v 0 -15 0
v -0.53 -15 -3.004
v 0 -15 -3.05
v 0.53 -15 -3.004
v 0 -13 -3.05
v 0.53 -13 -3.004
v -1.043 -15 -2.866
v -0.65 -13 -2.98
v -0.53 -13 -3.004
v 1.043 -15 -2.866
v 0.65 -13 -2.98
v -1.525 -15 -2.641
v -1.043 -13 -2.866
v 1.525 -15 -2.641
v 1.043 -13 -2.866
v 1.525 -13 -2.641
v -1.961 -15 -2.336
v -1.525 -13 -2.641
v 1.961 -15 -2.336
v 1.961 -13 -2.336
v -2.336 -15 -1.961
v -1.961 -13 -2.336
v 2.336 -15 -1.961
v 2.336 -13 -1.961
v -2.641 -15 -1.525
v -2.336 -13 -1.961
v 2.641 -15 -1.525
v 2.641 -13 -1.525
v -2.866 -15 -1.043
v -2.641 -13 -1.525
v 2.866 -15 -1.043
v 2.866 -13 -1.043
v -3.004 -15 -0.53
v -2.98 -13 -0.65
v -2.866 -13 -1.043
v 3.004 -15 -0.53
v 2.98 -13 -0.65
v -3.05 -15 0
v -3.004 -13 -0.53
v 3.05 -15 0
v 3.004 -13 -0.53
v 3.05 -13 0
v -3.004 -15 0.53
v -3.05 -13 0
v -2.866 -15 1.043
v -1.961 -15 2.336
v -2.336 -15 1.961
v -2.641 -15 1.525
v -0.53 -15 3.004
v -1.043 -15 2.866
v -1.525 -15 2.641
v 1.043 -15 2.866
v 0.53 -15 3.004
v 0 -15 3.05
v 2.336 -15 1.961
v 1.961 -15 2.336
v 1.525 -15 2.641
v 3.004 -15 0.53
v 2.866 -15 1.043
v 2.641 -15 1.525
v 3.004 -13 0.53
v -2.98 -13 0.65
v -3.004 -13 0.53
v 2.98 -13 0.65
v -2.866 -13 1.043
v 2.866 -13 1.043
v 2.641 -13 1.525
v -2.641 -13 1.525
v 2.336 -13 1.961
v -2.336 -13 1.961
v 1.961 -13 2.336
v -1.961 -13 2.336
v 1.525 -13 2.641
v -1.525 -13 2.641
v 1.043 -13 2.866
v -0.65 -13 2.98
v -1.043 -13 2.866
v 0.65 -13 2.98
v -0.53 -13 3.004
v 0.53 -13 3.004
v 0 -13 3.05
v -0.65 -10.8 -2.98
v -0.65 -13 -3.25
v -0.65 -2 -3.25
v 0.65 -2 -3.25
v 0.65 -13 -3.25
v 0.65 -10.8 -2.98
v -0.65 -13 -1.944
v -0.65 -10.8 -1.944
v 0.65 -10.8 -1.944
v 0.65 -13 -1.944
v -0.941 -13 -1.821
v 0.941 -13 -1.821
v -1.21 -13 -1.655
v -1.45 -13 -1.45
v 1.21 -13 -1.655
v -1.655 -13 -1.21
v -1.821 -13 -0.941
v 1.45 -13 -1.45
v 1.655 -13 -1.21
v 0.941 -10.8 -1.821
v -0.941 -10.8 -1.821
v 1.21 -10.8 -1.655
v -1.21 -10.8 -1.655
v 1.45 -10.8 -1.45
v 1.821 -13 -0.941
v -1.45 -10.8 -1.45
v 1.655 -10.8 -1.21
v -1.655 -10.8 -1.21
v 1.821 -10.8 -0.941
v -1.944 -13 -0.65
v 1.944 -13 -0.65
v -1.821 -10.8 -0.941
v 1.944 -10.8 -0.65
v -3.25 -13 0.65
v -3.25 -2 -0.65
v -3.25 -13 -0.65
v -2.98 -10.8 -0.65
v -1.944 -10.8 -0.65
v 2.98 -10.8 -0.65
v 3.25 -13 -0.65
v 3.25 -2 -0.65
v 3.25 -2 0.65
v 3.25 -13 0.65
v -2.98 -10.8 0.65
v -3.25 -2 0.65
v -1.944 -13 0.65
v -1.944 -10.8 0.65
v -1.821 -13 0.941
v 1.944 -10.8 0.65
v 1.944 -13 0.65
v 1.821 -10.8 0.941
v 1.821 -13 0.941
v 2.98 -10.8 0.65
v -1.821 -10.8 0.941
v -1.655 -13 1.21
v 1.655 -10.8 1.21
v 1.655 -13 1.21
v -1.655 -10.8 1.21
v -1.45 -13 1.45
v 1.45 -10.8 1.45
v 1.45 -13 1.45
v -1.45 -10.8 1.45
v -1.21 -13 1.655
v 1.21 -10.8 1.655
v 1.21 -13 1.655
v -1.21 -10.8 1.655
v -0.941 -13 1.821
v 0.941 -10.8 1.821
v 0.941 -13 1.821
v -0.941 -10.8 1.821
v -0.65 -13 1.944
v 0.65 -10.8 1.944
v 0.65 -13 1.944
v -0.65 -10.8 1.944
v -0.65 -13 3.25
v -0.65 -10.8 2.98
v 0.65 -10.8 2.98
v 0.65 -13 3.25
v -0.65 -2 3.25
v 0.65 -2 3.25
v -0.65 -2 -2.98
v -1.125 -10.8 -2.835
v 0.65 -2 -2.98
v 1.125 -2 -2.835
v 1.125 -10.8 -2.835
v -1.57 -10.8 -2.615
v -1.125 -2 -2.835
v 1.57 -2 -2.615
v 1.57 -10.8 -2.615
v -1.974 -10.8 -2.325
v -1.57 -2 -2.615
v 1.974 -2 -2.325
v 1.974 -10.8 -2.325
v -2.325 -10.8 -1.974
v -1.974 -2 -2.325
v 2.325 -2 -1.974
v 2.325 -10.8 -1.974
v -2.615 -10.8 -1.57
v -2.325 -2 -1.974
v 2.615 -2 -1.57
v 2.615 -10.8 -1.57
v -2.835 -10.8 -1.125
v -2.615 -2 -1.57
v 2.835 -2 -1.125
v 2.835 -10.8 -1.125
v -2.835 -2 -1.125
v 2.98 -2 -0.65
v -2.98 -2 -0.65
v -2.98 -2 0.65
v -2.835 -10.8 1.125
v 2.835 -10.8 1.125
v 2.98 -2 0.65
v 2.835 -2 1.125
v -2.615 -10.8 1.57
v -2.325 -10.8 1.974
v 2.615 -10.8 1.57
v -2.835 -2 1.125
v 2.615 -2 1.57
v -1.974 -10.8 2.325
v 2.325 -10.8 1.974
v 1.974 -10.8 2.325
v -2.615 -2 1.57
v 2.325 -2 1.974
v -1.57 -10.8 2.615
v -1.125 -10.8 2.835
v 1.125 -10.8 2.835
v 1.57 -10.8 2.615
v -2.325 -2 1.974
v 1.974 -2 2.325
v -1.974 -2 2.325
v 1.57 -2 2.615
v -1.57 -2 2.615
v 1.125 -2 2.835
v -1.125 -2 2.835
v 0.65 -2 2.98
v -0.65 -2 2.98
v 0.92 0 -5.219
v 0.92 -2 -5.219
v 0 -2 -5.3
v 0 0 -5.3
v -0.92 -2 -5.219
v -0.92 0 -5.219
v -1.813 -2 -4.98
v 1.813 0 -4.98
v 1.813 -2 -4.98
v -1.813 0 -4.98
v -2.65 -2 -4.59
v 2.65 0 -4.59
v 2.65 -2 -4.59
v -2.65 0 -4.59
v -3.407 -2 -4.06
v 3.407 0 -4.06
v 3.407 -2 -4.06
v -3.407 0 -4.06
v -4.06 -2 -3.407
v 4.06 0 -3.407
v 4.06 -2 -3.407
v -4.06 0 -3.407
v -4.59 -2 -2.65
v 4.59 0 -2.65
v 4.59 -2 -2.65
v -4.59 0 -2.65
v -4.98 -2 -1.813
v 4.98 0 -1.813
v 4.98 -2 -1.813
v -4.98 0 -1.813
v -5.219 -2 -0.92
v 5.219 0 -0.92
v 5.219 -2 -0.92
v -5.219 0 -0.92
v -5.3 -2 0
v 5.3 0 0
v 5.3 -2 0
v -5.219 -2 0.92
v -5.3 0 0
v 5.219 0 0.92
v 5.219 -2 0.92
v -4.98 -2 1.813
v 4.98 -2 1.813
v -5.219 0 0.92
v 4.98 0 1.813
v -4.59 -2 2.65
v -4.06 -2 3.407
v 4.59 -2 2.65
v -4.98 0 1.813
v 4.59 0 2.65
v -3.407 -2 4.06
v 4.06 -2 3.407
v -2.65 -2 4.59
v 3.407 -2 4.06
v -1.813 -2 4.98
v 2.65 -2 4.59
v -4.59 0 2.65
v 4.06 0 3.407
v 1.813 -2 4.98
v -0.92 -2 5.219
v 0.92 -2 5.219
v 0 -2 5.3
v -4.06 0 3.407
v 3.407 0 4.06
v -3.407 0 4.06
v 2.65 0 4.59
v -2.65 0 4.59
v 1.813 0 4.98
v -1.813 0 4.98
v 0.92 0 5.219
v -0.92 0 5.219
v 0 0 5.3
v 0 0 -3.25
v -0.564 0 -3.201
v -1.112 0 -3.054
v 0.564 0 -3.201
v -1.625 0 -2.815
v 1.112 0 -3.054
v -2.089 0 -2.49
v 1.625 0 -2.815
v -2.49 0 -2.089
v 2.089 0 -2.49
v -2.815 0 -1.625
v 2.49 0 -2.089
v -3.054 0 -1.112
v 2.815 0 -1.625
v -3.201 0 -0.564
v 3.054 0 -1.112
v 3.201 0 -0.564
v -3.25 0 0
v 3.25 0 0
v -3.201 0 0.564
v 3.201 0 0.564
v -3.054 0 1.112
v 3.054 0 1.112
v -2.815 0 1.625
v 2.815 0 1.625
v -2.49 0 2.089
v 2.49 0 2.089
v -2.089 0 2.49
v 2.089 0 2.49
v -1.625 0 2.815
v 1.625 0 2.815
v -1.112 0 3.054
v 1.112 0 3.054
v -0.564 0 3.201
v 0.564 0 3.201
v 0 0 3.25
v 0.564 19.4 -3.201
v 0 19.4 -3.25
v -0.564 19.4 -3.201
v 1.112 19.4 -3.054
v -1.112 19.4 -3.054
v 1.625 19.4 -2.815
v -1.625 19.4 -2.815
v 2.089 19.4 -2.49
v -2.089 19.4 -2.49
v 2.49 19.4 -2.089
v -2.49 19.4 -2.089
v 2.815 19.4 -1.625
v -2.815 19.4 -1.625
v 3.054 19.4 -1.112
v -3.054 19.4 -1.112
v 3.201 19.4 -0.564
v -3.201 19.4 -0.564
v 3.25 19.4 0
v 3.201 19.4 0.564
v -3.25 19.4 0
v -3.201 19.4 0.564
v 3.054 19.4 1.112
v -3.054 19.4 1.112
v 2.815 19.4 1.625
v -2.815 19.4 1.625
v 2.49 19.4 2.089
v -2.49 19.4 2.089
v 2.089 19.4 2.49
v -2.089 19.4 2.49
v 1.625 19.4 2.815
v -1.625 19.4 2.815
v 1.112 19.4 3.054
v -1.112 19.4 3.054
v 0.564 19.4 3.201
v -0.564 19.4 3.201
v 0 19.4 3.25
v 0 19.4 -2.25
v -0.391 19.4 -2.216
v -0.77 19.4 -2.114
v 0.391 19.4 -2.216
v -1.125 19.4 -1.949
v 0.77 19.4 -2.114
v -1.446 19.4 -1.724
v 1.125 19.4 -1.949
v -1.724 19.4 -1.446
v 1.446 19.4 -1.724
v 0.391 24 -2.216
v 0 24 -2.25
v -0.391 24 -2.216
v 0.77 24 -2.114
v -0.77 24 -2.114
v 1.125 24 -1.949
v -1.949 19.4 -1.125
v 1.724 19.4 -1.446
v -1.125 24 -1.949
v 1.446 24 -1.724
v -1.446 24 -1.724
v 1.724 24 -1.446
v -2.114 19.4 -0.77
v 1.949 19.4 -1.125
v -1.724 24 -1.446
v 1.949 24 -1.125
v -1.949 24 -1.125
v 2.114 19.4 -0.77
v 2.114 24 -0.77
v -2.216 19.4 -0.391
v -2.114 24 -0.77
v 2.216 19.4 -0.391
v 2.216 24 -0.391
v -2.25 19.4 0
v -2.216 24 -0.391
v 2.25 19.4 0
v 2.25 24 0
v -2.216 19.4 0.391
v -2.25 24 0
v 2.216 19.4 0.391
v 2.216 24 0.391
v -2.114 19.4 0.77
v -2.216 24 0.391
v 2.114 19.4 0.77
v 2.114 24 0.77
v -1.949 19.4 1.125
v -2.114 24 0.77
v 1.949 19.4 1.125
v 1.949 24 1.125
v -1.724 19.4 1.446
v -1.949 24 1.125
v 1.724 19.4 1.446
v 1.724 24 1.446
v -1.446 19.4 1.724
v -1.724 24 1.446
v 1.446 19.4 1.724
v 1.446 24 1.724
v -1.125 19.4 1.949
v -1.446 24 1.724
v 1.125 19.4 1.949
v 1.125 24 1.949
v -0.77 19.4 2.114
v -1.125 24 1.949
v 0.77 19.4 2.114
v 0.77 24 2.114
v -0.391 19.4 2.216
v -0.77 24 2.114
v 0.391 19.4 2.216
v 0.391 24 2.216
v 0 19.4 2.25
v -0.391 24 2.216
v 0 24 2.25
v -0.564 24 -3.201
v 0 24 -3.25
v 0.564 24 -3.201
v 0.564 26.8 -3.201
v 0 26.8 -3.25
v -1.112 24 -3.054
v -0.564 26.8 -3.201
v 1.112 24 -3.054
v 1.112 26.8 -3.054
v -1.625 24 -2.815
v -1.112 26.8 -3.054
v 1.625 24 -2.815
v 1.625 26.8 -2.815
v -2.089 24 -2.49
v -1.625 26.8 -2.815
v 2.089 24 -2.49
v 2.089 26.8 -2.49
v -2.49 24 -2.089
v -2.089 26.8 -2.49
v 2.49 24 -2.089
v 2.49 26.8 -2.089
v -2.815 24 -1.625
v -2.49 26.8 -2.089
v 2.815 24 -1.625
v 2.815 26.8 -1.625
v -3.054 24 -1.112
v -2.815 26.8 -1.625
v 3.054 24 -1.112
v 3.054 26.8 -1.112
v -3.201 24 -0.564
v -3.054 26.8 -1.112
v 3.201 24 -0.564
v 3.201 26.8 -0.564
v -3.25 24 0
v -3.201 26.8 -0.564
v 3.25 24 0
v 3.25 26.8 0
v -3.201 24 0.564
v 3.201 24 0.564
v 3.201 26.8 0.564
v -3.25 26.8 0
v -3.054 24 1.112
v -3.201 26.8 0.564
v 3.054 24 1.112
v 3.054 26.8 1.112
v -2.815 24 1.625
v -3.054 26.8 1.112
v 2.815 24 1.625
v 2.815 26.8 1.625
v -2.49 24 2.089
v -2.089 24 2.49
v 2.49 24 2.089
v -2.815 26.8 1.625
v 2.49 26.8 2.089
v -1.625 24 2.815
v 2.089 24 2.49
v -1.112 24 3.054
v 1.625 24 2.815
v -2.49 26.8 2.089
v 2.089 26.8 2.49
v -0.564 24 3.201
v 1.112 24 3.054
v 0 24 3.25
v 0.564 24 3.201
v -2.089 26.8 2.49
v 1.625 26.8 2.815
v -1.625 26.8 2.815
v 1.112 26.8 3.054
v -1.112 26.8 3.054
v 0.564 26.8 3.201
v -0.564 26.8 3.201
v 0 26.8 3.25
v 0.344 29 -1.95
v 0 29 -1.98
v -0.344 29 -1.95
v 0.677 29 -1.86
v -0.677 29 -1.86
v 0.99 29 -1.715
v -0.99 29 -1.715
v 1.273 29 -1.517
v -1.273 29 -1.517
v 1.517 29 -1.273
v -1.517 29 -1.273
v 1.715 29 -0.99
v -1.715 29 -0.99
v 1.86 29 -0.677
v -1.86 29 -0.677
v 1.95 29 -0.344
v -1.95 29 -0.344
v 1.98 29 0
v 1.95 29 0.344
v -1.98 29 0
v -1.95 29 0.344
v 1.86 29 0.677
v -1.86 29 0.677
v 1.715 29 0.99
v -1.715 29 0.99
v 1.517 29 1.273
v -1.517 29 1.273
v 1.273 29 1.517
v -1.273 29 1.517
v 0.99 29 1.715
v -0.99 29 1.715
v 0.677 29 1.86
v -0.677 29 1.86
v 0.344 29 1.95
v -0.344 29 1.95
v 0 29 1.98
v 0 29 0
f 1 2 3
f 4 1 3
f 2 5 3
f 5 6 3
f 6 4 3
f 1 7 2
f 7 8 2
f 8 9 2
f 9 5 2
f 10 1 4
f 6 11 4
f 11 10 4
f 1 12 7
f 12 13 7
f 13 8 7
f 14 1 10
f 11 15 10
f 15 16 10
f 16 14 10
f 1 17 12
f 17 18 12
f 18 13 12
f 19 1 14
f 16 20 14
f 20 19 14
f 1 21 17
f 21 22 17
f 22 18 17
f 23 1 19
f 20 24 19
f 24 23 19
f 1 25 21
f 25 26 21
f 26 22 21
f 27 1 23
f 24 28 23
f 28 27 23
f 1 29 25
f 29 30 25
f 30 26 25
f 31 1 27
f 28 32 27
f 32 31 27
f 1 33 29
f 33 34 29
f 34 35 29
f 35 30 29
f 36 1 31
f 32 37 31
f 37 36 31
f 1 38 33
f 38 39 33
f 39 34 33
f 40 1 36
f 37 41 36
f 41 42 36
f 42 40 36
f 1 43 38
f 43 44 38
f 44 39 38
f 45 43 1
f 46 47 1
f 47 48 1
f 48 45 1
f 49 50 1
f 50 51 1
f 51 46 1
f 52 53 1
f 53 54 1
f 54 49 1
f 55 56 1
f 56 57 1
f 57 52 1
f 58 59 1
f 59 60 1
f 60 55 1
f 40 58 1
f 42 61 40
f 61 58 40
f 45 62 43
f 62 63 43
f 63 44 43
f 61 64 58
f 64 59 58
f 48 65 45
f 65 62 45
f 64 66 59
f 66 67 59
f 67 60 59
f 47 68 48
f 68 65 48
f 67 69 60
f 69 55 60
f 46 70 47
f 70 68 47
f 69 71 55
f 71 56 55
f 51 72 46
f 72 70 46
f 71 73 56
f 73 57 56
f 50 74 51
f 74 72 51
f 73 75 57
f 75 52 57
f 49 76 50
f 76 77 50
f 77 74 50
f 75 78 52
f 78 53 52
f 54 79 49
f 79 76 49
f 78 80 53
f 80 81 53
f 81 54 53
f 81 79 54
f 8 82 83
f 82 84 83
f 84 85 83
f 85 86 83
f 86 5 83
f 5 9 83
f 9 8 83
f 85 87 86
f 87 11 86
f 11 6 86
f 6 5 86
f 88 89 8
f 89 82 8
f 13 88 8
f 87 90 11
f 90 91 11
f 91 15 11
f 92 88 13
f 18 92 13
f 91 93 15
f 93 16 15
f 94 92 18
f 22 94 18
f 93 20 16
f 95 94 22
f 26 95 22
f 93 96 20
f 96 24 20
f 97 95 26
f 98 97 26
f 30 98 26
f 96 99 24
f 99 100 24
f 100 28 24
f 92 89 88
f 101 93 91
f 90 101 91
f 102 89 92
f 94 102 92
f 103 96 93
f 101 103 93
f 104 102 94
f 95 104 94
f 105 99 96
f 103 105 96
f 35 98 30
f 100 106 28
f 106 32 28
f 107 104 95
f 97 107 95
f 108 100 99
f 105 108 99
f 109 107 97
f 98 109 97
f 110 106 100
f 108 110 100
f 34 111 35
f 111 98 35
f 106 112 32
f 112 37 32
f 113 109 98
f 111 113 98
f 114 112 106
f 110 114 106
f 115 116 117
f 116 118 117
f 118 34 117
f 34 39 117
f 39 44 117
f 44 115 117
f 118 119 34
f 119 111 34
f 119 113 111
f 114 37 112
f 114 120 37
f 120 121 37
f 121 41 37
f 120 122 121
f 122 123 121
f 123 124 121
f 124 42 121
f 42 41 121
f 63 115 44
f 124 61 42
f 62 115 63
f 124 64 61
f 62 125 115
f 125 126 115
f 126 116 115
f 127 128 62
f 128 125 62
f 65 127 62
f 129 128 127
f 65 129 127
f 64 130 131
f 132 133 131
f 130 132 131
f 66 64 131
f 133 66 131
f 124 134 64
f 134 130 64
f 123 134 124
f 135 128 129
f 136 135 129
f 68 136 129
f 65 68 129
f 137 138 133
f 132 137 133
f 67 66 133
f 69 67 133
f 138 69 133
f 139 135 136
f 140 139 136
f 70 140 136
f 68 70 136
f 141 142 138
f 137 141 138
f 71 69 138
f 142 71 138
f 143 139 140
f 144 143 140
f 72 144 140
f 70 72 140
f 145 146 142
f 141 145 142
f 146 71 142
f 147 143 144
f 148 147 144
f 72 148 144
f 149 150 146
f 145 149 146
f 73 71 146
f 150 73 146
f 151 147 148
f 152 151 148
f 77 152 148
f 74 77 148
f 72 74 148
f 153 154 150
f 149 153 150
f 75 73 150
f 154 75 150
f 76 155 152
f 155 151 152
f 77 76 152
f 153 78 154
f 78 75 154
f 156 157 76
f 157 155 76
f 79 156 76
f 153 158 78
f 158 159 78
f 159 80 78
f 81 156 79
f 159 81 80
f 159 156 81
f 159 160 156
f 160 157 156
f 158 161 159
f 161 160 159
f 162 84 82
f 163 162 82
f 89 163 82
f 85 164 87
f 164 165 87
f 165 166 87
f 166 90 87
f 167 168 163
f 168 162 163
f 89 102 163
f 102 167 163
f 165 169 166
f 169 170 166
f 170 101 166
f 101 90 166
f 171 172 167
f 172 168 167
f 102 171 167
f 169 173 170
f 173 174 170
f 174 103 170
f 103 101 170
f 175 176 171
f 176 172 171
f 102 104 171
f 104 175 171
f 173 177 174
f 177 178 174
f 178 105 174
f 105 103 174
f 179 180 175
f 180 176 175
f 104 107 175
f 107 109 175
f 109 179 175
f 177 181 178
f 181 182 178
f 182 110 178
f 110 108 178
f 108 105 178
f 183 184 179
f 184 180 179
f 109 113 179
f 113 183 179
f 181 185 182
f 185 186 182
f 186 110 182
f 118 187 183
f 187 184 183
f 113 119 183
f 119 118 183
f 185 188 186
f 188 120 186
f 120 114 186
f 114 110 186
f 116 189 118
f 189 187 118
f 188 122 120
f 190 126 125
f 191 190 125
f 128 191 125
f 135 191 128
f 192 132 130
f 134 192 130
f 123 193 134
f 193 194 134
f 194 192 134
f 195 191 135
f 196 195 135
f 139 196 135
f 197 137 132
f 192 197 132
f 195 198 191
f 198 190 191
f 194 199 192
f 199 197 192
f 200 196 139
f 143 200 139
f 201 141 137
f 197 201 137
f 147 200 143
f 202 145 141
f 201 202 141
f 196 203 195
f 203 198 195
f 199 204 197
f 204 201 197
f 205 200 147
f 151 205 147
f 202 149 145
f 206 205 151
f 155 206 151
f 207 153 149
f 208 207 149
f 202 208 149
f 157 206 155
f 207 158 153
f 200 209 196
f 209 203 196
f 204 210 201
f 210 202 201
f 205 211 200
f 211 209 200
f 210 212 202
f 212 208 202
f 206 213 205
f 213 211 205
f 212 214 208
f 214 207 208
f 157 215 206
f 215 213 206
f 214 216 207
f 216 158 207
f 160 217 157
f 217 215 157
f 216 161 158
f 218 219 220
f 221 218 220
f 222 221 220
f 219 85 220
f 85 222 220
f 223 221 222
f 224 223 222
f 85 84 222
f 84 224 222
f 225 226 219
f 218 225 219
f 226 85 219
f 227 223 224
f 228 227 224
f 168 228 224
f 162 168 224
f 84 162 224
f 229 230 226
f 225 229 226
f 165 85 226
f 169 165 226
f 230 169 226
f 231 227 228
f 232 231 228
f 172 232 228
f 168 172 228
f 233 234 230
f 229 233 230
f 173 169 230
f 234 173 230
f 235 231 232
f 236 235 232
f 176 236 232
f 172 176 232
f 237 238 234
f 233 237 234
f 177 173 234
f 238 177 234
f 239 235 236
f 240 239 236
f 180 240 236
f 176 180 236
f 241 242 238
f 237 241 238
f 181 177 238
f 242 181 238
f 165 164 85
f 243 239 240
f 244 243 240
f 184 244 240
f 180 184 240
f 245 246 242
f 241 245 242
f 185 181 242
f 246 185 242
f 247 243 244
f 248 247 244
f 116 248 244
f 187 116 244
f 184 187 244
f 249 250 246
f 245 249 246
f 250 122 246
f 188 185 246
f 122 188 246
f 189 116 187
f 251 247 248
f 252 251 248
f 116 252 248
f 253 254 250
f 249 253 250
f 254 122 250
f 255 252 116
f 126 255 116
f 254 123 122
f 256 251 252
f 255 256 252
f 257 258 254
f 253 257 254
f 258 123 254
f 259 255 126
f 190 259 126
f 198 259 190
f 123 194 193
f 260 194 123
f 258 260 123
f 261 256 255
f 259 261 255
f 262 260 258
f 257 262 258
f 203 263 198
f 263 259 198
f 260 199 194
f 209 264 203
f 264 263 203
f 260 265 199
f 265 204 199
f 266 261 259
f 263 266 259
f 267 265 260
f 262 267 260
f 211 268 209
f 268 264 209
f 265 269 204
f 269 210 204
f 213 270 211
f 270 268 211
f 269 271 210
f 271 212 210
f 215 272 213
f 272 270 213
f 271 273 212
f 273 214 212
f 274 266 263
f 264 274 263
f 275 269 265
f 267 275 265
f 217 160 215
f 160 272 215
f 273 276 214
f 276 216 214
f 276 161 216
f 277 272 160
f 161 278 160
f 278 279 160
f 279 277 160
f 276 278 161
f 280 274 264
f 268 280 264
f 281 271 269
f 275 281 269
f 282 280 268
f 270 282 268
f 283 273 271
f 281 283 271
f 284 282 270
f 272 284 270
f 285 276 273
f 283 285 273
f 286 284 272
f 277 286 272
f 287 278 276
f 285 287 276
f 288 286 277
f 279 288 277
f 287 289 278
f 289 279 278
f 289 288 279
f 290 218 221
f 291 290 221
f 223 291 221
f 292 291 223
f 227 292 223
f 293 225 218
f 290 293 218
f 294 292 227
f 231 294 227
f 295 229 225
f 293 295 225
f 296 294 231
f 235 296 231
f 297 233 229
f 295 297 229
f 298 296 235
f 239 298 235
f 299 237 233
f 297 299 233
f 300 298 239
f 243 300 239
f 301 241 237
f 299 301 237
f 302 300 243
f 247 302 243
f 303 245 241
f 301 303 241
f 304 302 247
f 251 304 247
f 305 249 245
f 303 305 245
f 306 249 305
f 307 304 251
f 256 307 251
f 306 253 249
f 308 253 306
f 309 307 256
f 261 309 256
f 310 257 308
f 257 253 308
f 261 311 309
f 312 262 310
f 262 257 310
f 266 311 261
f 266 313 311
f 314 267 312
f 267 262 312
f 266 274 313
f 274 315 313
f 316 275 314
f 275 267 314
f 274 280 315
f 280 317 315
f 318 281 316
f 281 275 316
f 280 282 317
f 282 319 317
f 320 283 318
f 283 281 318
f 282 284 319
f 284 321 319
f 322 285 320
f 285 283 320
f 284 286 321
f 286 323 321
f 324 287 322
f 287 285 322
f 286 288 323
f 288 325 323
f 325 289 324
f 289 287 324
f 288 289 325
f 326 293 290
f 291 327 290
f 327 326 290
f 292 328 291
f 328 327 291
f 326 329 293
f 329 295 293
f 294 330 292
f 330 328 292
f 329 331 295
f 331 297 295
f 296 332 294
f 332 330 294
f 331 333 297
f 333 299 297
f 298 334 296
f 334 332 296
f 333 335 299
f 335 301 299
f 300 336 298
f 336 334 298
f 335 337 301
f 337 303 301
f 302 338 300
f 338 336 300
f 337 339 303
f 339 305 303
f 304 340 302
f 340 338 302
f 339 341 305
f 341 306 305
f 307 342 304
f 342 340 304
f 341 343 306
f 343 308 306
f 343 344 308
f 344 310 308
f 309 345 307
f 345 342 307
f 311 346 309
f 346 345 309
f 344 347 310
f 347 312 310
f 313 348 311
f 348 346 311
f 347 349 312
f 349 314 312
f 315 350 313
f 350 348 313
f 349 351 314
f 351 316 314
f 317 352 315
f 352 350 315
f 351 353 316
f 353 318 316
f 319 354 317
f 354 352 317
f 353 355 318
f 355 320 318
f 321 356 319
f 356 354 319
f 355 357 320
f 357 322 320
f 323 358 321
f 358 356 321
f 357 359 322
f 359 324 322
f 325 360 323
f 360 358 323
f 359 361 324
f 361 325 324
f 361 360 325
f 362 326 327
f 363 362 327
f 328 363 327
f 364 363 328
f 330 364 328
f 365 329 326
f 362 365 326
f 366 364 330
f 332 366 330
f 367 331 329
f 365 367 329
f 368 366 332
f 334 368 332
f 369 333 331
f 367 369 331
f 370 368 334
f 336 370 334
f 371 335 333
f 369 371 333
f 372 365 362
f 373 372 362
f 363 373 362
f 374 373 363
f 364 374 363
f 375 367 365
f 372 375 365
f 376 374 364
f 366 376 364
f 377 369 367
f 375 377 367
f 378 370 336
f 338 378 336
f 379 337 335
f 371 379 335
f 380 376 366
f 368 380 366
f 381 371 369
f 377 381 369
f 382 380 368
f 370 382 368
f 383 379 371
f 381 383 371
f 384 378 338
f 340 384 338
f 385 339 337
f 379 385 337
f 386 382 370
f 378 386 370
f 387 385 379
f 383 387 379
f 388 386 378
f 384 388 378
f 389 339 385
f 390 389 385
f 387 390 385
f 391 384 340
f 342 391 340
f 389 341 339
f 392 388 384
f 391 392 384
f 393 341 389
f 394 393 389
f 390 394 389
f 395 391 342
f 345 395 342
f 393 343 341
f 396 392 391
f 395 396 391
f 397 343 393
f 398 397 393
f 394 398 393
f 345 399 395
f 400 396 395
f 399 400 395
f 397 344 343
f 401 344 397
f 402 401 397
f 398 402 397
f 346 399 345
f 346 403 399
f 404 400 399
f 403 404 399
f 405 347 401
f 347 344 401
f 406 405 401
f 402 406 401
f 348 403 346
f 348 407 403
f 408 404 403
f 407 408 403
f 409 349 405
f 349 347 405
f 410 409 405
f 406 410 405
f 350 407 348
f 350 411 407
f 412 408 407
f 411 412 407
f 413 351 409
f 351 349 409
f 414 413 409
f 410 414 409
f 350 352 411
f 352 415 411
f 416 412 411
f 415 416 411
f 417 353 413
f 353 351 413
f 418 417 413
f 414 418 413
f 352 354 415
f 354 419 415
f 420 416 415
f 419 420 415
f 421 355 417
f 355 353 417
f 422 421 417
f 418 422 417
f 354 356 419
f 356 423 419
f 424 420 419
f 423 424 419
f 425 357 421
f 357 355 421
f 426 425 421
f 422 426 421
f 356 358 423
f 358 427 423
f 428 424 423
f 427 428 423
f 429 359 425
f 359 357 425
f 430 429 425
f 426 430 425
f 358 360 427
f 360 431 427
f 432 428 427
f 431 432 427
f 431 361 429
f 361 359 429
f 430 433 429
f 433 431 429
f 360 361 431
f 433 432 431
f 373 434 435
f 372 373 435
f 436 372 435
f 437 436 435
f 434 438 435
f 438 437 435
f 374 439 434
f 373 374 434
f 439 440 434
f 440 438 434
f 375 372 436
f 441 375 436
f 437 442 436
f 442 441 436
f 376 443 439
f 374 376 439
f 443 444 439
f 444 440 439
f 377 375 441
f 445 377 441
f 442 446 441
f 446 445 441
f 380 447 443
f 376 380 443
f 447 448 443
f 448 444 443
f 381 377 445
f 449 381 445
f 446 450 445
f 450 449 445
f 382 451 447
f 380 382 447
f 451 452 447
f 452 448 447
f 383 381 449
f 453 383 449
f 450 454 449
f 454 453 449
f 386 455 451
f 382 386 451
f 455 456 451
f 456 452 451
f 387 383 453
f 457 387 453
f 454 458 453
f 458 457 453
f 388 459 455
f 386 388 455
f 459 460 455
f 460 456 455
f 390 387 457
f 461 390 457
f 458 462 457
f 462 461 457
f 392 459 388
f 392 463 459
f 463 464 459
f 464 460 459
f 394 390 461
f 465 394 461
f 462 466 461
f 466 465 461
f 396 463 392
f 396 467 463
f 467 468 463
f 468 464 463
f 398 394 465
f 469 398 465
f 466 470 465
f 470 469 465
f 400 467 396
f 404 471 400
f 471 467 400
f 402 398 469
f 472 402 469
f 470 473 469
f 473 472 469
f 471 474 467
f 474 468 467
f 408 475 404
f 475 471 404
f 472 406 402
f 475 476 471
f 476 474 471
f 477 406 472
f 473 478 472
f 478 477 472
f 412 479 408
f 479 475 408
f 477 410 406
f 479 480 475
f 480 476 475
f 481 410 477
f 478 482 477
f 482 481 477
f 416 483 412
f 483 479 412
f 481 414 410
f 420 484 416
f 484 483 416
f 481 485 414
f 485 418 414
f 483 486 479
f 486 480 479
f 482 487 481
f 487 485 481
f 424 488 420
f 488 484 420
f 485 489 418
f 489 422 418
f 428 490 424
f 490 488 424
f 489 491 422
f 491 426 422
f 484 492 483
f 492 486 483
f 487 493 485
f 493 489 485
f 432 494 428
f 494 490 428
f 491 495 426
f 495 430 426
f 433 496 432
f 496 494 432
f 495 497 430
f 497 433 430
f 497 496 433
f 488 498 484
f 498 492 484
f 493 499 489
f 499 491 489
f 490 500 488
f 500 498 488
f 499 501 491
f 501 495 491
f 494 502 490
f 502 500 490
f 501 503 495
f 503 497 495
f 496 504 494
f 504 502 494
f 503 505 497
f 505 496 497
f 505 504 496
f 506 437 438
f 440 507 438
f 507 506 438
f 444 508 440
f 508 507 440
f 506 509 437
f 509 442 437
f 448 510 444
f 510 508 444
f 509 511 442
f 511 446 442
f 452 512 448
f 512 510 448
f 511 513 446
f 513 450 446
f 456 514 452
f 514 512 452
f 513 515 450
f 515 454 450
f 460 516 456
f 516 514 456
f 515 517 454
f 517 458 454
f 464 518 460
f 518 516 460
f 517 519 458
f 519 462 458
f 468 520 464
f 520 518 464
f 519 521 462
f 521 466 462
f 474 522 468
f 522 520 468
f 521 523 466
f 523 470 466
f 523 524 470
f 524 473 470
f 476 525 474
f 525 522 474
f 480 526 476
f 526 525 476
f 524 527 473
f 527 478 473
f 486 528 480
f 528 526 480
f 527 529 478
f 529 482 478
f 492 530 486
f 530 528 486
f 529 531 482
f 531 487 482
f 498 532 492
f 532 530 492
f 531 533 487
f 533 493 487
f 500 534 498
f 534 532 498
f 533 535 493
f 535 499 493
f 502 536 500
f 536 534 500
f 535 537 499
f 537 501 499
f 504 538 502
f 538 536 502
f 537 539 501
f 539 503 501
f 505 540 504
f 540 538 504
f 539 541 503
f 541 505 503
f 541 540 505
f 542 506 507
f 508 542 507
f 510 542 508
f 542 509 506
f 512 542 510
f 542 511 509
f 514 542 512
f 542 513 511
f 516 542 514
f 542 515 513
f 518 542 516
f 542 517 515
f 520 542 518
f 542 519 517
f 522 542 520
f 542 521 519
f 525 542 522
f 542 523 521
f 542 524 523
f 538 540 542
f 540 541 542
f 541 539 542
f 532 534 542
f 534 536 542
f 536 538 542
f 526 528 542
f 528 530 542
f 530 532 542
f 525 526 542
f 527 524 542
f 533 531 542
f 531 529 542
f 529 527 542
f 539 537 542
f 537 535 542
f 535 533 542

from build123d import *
from build123d.topology import SkipClean

# Parameters (mm, degrees)
SKETCH_1_R          = 3.25
EXTRUDE_1_DEPTH     = 29
CUT_EXTRUDE_START   = -5
SKETCH_2_OUTSIDE_W  = 14.584
SKETCH_2_OUTSIDE_H  = 14.584
SKETCH_2_OUTSIDE_R  = 2.25
CUT_EXTRUDE_1_DEPTH = 4.6
CHAMFER_1_SIZE      = 2.2
CHAMFER_1_SIZE2     = 1.270170592
SKETCH_3_R          = 5.3
EXTRUDE_2_DEPTH     = 2
EXTRUDE_3_DEPTH     = 13
CUT_EXTRUDE_START_2 = -4.2
CUT_EXTRUDE_2_DEPTH = 2.2
SKETCH_6_OUTSIDE_W  = 21.896
SKETCH_6_OUTSIDE_H  = 21.896
SKETCH_6_OUTSIDE_R  = 3.05
CUT_EXTRUDE_3_DEPTH = 2


with BuildPart() as part:
    # Эскиз1 → Бобышка-Вытянуть1 (new body)
    with BuildSketch(Plane(origin=(0, 0, 0), x_dir=(1, 0, 0), z_dir=(0, 1, 0))):
        with Locations(Location((0, 0, 0), (0, 0, 90))):
            Circle(SKETCH_1_R)
    extrude(amount=EXTRUDE_1_DEPTH)

    # Эскиз2 outside → Вырез-Вытянуть1 (cut)
    with BuildSketch(Plane(origin=(0, 29, 0), x_dir=(1, 0, 0), z_dir=(0, 1, 0)).offset(CUT_EXTRUDE_START)):
        Rectangle(SKETCH_2_OUTSIDE_W, SKETCH_2_OUTSIDE_H)
        with Locations(Location((0, 0, 0), (0, 0, 270))):
            Circle(SKETCH_2_OUTSIDE_R, mode=Mode.SUBTRACT)
    extrude(amount=-CUT_EXTRUDE_1_DEPTH, mode=Mode.SUBTRACT)

    # Фаска1
    chamfer_1_edges = [part.edges().sort_by_distance(p)[0] for p in [
        (0, 29, 3.25),
    ]]
    chamfer_1_side = [part.faces().sort_by_distance(p)[0] for p in [
        (0, 26.5, 3.25),
    ]]
    chamfer(chamfer_1_edges, length=CHAMFER_1_SIZE, length2=CHAMFER_1_SIZE2, reference=chamfer_1_side[0])

    # Эскиз3 → Бобышка-Вытянуть2 (add)
    with BuildSketch(Plane.XZ):
        with Locations(Location((0, 0, 0), (0, 0, 270))):
            Circle(SKETCH_3_R)
    extrude(amount=EXTRUDE_2_DEPTH)

    # Эскиз4 → Бобышка-Вытянуть3 (add)
    with BuildSketch(Plane.XZ.offset(2)):
        with BuildLine():
            Line((-0.65, 3.25), (0.65, 3.25))
            Line((0.65, 3.25), (0.65, 2.979932885))
            ThreePointArc((0.65, 2.979932885), (2.156675683, 2.156675683), (2.979932885, 0.65))
            Line((2.979932885, 0.65), (3.25, 0.65))
            Line((3.25, 0.65), (3.25, -0.65))
            Line((3.25, -0.65), (2.979932885, -0.65))
            ThreePointArc((2.979932885, -0.65), (2.156675683, -2.156675683), (0.65, -2.979932885))
            Line((0.65, -2.979932885), (0.65, -3.25))
            Line((0.65, -3.25), (-0.65, -3.25))
            Line((-0.65, -3.25), (-0.65, -2.979932885))
            ThreePointArc((-0.65, -2.979932885), (-2.156675683, -2.156675683), (-2.979932885, -0.65))
            Line((-2.979932885, -0.65), (-3.25, -0.65))
            Line((-3.25, -0.65), (-3.25, 0.65))
            Line((-3.25, 0.65), (-2.979932885, 0.65))
            ThreePointArc((-2.979932885, 0.65), (-2.156675683, 2.156675683), (-0.65, 2.979932885))
            Line((-0.65, 2.979932885), (-0.65, 3.25))
        make_face()
    extrude(amount=EXTRUDE_3_DEPTH)

    # Эскиз5 → Вырез-Вытянуть2 (cut)
    with BuildSketch(Plane.XZ.offset(15).offset(CUT_EXTRUDE_START_2)):
        with BuildLine():
            Line((-2.979932885, 0.65), (-1.94422221, 0.65))
            ThreePointArc((-1.94422221, 0.65), (-1.449568901, 1.449568901), (-0.65, 1.94422221))
            Line((-0.65, 1.94422221), (-0.65, 2.979932885))
            ThreePointArc((-0.65, 2.979932885), (-2.156675683, 2.156675683), (-2.979932885, 0.65))
        make_face()
        with BuildLine():
            Line((2.979932885, 0.65), (1.94422221, 0.65))
            ThreePointArc((1.94422221, 0.65), (1.449568901, 1.449568901), (0.65, 1.94422221))
            Line((0.65, 1.94422221), (0.65, 2.979932885))
            ThreePointArc((0.65, 2.979932885), (2.156675683, 2.156675683), (2.979932885, 0.65))
        make_face()
        with BuildLine():
            Line((-0.65, -1.94422221), (-0.65, -2.979932885))
            ThreePointArc((-0.65, -2.979932885), (-2.156675683, -2.156675683), (-2.979932885, -0.65))
            Line((-2.979932885, -0.65), (-1.94422221, -0.65))
            ThreePointArc((-1.94422221, -0.65), (-1.449568901, -1.449568901), (-0.65, -1.94422221))
        make_face()
        with BuildLine():
            Line((0.65, -2.979932885), (0.65, -1.94422221))
            ThreePointArc((0.65, -1.94422221), (1.449568901, -1.449568901), (1.94422221, -0.65))
            Line((1.94422221, -0.65), (2.979932885, -0.65))
            ThreePointArc((2.979932885, -0.65), (2.156675683, -2.156675683), (0.65, -2.979932885))
        make_face()
    extrude(amount=CUT_EXTRUDE_2_DEPTH, mode=Mode.SUBTRACT)

    # Эскиз6 outside → Вырез-Вытянуть3 (cut)
    with SkipClean():  # the faces are left unmerged after this step: merging them gives an invalid solid
        with BuildSketch(Plane.XZ.offset(15)):
            Rectangle(SKETCH_6_OUTSIDE_W, SKETCH_6_OUTSIDE_H)
            with Locations(Location((0, 0, 0), (0, 0, 102.304947534))):
                Circle(SKETCH_6_OUTSIDE_R, mode=Mode.SUBTRACT)
        extrude(amount=-CUT_EXTRUDE_3_DEPTH, mode=Mode.SUBTRACT)


solid = part.part
